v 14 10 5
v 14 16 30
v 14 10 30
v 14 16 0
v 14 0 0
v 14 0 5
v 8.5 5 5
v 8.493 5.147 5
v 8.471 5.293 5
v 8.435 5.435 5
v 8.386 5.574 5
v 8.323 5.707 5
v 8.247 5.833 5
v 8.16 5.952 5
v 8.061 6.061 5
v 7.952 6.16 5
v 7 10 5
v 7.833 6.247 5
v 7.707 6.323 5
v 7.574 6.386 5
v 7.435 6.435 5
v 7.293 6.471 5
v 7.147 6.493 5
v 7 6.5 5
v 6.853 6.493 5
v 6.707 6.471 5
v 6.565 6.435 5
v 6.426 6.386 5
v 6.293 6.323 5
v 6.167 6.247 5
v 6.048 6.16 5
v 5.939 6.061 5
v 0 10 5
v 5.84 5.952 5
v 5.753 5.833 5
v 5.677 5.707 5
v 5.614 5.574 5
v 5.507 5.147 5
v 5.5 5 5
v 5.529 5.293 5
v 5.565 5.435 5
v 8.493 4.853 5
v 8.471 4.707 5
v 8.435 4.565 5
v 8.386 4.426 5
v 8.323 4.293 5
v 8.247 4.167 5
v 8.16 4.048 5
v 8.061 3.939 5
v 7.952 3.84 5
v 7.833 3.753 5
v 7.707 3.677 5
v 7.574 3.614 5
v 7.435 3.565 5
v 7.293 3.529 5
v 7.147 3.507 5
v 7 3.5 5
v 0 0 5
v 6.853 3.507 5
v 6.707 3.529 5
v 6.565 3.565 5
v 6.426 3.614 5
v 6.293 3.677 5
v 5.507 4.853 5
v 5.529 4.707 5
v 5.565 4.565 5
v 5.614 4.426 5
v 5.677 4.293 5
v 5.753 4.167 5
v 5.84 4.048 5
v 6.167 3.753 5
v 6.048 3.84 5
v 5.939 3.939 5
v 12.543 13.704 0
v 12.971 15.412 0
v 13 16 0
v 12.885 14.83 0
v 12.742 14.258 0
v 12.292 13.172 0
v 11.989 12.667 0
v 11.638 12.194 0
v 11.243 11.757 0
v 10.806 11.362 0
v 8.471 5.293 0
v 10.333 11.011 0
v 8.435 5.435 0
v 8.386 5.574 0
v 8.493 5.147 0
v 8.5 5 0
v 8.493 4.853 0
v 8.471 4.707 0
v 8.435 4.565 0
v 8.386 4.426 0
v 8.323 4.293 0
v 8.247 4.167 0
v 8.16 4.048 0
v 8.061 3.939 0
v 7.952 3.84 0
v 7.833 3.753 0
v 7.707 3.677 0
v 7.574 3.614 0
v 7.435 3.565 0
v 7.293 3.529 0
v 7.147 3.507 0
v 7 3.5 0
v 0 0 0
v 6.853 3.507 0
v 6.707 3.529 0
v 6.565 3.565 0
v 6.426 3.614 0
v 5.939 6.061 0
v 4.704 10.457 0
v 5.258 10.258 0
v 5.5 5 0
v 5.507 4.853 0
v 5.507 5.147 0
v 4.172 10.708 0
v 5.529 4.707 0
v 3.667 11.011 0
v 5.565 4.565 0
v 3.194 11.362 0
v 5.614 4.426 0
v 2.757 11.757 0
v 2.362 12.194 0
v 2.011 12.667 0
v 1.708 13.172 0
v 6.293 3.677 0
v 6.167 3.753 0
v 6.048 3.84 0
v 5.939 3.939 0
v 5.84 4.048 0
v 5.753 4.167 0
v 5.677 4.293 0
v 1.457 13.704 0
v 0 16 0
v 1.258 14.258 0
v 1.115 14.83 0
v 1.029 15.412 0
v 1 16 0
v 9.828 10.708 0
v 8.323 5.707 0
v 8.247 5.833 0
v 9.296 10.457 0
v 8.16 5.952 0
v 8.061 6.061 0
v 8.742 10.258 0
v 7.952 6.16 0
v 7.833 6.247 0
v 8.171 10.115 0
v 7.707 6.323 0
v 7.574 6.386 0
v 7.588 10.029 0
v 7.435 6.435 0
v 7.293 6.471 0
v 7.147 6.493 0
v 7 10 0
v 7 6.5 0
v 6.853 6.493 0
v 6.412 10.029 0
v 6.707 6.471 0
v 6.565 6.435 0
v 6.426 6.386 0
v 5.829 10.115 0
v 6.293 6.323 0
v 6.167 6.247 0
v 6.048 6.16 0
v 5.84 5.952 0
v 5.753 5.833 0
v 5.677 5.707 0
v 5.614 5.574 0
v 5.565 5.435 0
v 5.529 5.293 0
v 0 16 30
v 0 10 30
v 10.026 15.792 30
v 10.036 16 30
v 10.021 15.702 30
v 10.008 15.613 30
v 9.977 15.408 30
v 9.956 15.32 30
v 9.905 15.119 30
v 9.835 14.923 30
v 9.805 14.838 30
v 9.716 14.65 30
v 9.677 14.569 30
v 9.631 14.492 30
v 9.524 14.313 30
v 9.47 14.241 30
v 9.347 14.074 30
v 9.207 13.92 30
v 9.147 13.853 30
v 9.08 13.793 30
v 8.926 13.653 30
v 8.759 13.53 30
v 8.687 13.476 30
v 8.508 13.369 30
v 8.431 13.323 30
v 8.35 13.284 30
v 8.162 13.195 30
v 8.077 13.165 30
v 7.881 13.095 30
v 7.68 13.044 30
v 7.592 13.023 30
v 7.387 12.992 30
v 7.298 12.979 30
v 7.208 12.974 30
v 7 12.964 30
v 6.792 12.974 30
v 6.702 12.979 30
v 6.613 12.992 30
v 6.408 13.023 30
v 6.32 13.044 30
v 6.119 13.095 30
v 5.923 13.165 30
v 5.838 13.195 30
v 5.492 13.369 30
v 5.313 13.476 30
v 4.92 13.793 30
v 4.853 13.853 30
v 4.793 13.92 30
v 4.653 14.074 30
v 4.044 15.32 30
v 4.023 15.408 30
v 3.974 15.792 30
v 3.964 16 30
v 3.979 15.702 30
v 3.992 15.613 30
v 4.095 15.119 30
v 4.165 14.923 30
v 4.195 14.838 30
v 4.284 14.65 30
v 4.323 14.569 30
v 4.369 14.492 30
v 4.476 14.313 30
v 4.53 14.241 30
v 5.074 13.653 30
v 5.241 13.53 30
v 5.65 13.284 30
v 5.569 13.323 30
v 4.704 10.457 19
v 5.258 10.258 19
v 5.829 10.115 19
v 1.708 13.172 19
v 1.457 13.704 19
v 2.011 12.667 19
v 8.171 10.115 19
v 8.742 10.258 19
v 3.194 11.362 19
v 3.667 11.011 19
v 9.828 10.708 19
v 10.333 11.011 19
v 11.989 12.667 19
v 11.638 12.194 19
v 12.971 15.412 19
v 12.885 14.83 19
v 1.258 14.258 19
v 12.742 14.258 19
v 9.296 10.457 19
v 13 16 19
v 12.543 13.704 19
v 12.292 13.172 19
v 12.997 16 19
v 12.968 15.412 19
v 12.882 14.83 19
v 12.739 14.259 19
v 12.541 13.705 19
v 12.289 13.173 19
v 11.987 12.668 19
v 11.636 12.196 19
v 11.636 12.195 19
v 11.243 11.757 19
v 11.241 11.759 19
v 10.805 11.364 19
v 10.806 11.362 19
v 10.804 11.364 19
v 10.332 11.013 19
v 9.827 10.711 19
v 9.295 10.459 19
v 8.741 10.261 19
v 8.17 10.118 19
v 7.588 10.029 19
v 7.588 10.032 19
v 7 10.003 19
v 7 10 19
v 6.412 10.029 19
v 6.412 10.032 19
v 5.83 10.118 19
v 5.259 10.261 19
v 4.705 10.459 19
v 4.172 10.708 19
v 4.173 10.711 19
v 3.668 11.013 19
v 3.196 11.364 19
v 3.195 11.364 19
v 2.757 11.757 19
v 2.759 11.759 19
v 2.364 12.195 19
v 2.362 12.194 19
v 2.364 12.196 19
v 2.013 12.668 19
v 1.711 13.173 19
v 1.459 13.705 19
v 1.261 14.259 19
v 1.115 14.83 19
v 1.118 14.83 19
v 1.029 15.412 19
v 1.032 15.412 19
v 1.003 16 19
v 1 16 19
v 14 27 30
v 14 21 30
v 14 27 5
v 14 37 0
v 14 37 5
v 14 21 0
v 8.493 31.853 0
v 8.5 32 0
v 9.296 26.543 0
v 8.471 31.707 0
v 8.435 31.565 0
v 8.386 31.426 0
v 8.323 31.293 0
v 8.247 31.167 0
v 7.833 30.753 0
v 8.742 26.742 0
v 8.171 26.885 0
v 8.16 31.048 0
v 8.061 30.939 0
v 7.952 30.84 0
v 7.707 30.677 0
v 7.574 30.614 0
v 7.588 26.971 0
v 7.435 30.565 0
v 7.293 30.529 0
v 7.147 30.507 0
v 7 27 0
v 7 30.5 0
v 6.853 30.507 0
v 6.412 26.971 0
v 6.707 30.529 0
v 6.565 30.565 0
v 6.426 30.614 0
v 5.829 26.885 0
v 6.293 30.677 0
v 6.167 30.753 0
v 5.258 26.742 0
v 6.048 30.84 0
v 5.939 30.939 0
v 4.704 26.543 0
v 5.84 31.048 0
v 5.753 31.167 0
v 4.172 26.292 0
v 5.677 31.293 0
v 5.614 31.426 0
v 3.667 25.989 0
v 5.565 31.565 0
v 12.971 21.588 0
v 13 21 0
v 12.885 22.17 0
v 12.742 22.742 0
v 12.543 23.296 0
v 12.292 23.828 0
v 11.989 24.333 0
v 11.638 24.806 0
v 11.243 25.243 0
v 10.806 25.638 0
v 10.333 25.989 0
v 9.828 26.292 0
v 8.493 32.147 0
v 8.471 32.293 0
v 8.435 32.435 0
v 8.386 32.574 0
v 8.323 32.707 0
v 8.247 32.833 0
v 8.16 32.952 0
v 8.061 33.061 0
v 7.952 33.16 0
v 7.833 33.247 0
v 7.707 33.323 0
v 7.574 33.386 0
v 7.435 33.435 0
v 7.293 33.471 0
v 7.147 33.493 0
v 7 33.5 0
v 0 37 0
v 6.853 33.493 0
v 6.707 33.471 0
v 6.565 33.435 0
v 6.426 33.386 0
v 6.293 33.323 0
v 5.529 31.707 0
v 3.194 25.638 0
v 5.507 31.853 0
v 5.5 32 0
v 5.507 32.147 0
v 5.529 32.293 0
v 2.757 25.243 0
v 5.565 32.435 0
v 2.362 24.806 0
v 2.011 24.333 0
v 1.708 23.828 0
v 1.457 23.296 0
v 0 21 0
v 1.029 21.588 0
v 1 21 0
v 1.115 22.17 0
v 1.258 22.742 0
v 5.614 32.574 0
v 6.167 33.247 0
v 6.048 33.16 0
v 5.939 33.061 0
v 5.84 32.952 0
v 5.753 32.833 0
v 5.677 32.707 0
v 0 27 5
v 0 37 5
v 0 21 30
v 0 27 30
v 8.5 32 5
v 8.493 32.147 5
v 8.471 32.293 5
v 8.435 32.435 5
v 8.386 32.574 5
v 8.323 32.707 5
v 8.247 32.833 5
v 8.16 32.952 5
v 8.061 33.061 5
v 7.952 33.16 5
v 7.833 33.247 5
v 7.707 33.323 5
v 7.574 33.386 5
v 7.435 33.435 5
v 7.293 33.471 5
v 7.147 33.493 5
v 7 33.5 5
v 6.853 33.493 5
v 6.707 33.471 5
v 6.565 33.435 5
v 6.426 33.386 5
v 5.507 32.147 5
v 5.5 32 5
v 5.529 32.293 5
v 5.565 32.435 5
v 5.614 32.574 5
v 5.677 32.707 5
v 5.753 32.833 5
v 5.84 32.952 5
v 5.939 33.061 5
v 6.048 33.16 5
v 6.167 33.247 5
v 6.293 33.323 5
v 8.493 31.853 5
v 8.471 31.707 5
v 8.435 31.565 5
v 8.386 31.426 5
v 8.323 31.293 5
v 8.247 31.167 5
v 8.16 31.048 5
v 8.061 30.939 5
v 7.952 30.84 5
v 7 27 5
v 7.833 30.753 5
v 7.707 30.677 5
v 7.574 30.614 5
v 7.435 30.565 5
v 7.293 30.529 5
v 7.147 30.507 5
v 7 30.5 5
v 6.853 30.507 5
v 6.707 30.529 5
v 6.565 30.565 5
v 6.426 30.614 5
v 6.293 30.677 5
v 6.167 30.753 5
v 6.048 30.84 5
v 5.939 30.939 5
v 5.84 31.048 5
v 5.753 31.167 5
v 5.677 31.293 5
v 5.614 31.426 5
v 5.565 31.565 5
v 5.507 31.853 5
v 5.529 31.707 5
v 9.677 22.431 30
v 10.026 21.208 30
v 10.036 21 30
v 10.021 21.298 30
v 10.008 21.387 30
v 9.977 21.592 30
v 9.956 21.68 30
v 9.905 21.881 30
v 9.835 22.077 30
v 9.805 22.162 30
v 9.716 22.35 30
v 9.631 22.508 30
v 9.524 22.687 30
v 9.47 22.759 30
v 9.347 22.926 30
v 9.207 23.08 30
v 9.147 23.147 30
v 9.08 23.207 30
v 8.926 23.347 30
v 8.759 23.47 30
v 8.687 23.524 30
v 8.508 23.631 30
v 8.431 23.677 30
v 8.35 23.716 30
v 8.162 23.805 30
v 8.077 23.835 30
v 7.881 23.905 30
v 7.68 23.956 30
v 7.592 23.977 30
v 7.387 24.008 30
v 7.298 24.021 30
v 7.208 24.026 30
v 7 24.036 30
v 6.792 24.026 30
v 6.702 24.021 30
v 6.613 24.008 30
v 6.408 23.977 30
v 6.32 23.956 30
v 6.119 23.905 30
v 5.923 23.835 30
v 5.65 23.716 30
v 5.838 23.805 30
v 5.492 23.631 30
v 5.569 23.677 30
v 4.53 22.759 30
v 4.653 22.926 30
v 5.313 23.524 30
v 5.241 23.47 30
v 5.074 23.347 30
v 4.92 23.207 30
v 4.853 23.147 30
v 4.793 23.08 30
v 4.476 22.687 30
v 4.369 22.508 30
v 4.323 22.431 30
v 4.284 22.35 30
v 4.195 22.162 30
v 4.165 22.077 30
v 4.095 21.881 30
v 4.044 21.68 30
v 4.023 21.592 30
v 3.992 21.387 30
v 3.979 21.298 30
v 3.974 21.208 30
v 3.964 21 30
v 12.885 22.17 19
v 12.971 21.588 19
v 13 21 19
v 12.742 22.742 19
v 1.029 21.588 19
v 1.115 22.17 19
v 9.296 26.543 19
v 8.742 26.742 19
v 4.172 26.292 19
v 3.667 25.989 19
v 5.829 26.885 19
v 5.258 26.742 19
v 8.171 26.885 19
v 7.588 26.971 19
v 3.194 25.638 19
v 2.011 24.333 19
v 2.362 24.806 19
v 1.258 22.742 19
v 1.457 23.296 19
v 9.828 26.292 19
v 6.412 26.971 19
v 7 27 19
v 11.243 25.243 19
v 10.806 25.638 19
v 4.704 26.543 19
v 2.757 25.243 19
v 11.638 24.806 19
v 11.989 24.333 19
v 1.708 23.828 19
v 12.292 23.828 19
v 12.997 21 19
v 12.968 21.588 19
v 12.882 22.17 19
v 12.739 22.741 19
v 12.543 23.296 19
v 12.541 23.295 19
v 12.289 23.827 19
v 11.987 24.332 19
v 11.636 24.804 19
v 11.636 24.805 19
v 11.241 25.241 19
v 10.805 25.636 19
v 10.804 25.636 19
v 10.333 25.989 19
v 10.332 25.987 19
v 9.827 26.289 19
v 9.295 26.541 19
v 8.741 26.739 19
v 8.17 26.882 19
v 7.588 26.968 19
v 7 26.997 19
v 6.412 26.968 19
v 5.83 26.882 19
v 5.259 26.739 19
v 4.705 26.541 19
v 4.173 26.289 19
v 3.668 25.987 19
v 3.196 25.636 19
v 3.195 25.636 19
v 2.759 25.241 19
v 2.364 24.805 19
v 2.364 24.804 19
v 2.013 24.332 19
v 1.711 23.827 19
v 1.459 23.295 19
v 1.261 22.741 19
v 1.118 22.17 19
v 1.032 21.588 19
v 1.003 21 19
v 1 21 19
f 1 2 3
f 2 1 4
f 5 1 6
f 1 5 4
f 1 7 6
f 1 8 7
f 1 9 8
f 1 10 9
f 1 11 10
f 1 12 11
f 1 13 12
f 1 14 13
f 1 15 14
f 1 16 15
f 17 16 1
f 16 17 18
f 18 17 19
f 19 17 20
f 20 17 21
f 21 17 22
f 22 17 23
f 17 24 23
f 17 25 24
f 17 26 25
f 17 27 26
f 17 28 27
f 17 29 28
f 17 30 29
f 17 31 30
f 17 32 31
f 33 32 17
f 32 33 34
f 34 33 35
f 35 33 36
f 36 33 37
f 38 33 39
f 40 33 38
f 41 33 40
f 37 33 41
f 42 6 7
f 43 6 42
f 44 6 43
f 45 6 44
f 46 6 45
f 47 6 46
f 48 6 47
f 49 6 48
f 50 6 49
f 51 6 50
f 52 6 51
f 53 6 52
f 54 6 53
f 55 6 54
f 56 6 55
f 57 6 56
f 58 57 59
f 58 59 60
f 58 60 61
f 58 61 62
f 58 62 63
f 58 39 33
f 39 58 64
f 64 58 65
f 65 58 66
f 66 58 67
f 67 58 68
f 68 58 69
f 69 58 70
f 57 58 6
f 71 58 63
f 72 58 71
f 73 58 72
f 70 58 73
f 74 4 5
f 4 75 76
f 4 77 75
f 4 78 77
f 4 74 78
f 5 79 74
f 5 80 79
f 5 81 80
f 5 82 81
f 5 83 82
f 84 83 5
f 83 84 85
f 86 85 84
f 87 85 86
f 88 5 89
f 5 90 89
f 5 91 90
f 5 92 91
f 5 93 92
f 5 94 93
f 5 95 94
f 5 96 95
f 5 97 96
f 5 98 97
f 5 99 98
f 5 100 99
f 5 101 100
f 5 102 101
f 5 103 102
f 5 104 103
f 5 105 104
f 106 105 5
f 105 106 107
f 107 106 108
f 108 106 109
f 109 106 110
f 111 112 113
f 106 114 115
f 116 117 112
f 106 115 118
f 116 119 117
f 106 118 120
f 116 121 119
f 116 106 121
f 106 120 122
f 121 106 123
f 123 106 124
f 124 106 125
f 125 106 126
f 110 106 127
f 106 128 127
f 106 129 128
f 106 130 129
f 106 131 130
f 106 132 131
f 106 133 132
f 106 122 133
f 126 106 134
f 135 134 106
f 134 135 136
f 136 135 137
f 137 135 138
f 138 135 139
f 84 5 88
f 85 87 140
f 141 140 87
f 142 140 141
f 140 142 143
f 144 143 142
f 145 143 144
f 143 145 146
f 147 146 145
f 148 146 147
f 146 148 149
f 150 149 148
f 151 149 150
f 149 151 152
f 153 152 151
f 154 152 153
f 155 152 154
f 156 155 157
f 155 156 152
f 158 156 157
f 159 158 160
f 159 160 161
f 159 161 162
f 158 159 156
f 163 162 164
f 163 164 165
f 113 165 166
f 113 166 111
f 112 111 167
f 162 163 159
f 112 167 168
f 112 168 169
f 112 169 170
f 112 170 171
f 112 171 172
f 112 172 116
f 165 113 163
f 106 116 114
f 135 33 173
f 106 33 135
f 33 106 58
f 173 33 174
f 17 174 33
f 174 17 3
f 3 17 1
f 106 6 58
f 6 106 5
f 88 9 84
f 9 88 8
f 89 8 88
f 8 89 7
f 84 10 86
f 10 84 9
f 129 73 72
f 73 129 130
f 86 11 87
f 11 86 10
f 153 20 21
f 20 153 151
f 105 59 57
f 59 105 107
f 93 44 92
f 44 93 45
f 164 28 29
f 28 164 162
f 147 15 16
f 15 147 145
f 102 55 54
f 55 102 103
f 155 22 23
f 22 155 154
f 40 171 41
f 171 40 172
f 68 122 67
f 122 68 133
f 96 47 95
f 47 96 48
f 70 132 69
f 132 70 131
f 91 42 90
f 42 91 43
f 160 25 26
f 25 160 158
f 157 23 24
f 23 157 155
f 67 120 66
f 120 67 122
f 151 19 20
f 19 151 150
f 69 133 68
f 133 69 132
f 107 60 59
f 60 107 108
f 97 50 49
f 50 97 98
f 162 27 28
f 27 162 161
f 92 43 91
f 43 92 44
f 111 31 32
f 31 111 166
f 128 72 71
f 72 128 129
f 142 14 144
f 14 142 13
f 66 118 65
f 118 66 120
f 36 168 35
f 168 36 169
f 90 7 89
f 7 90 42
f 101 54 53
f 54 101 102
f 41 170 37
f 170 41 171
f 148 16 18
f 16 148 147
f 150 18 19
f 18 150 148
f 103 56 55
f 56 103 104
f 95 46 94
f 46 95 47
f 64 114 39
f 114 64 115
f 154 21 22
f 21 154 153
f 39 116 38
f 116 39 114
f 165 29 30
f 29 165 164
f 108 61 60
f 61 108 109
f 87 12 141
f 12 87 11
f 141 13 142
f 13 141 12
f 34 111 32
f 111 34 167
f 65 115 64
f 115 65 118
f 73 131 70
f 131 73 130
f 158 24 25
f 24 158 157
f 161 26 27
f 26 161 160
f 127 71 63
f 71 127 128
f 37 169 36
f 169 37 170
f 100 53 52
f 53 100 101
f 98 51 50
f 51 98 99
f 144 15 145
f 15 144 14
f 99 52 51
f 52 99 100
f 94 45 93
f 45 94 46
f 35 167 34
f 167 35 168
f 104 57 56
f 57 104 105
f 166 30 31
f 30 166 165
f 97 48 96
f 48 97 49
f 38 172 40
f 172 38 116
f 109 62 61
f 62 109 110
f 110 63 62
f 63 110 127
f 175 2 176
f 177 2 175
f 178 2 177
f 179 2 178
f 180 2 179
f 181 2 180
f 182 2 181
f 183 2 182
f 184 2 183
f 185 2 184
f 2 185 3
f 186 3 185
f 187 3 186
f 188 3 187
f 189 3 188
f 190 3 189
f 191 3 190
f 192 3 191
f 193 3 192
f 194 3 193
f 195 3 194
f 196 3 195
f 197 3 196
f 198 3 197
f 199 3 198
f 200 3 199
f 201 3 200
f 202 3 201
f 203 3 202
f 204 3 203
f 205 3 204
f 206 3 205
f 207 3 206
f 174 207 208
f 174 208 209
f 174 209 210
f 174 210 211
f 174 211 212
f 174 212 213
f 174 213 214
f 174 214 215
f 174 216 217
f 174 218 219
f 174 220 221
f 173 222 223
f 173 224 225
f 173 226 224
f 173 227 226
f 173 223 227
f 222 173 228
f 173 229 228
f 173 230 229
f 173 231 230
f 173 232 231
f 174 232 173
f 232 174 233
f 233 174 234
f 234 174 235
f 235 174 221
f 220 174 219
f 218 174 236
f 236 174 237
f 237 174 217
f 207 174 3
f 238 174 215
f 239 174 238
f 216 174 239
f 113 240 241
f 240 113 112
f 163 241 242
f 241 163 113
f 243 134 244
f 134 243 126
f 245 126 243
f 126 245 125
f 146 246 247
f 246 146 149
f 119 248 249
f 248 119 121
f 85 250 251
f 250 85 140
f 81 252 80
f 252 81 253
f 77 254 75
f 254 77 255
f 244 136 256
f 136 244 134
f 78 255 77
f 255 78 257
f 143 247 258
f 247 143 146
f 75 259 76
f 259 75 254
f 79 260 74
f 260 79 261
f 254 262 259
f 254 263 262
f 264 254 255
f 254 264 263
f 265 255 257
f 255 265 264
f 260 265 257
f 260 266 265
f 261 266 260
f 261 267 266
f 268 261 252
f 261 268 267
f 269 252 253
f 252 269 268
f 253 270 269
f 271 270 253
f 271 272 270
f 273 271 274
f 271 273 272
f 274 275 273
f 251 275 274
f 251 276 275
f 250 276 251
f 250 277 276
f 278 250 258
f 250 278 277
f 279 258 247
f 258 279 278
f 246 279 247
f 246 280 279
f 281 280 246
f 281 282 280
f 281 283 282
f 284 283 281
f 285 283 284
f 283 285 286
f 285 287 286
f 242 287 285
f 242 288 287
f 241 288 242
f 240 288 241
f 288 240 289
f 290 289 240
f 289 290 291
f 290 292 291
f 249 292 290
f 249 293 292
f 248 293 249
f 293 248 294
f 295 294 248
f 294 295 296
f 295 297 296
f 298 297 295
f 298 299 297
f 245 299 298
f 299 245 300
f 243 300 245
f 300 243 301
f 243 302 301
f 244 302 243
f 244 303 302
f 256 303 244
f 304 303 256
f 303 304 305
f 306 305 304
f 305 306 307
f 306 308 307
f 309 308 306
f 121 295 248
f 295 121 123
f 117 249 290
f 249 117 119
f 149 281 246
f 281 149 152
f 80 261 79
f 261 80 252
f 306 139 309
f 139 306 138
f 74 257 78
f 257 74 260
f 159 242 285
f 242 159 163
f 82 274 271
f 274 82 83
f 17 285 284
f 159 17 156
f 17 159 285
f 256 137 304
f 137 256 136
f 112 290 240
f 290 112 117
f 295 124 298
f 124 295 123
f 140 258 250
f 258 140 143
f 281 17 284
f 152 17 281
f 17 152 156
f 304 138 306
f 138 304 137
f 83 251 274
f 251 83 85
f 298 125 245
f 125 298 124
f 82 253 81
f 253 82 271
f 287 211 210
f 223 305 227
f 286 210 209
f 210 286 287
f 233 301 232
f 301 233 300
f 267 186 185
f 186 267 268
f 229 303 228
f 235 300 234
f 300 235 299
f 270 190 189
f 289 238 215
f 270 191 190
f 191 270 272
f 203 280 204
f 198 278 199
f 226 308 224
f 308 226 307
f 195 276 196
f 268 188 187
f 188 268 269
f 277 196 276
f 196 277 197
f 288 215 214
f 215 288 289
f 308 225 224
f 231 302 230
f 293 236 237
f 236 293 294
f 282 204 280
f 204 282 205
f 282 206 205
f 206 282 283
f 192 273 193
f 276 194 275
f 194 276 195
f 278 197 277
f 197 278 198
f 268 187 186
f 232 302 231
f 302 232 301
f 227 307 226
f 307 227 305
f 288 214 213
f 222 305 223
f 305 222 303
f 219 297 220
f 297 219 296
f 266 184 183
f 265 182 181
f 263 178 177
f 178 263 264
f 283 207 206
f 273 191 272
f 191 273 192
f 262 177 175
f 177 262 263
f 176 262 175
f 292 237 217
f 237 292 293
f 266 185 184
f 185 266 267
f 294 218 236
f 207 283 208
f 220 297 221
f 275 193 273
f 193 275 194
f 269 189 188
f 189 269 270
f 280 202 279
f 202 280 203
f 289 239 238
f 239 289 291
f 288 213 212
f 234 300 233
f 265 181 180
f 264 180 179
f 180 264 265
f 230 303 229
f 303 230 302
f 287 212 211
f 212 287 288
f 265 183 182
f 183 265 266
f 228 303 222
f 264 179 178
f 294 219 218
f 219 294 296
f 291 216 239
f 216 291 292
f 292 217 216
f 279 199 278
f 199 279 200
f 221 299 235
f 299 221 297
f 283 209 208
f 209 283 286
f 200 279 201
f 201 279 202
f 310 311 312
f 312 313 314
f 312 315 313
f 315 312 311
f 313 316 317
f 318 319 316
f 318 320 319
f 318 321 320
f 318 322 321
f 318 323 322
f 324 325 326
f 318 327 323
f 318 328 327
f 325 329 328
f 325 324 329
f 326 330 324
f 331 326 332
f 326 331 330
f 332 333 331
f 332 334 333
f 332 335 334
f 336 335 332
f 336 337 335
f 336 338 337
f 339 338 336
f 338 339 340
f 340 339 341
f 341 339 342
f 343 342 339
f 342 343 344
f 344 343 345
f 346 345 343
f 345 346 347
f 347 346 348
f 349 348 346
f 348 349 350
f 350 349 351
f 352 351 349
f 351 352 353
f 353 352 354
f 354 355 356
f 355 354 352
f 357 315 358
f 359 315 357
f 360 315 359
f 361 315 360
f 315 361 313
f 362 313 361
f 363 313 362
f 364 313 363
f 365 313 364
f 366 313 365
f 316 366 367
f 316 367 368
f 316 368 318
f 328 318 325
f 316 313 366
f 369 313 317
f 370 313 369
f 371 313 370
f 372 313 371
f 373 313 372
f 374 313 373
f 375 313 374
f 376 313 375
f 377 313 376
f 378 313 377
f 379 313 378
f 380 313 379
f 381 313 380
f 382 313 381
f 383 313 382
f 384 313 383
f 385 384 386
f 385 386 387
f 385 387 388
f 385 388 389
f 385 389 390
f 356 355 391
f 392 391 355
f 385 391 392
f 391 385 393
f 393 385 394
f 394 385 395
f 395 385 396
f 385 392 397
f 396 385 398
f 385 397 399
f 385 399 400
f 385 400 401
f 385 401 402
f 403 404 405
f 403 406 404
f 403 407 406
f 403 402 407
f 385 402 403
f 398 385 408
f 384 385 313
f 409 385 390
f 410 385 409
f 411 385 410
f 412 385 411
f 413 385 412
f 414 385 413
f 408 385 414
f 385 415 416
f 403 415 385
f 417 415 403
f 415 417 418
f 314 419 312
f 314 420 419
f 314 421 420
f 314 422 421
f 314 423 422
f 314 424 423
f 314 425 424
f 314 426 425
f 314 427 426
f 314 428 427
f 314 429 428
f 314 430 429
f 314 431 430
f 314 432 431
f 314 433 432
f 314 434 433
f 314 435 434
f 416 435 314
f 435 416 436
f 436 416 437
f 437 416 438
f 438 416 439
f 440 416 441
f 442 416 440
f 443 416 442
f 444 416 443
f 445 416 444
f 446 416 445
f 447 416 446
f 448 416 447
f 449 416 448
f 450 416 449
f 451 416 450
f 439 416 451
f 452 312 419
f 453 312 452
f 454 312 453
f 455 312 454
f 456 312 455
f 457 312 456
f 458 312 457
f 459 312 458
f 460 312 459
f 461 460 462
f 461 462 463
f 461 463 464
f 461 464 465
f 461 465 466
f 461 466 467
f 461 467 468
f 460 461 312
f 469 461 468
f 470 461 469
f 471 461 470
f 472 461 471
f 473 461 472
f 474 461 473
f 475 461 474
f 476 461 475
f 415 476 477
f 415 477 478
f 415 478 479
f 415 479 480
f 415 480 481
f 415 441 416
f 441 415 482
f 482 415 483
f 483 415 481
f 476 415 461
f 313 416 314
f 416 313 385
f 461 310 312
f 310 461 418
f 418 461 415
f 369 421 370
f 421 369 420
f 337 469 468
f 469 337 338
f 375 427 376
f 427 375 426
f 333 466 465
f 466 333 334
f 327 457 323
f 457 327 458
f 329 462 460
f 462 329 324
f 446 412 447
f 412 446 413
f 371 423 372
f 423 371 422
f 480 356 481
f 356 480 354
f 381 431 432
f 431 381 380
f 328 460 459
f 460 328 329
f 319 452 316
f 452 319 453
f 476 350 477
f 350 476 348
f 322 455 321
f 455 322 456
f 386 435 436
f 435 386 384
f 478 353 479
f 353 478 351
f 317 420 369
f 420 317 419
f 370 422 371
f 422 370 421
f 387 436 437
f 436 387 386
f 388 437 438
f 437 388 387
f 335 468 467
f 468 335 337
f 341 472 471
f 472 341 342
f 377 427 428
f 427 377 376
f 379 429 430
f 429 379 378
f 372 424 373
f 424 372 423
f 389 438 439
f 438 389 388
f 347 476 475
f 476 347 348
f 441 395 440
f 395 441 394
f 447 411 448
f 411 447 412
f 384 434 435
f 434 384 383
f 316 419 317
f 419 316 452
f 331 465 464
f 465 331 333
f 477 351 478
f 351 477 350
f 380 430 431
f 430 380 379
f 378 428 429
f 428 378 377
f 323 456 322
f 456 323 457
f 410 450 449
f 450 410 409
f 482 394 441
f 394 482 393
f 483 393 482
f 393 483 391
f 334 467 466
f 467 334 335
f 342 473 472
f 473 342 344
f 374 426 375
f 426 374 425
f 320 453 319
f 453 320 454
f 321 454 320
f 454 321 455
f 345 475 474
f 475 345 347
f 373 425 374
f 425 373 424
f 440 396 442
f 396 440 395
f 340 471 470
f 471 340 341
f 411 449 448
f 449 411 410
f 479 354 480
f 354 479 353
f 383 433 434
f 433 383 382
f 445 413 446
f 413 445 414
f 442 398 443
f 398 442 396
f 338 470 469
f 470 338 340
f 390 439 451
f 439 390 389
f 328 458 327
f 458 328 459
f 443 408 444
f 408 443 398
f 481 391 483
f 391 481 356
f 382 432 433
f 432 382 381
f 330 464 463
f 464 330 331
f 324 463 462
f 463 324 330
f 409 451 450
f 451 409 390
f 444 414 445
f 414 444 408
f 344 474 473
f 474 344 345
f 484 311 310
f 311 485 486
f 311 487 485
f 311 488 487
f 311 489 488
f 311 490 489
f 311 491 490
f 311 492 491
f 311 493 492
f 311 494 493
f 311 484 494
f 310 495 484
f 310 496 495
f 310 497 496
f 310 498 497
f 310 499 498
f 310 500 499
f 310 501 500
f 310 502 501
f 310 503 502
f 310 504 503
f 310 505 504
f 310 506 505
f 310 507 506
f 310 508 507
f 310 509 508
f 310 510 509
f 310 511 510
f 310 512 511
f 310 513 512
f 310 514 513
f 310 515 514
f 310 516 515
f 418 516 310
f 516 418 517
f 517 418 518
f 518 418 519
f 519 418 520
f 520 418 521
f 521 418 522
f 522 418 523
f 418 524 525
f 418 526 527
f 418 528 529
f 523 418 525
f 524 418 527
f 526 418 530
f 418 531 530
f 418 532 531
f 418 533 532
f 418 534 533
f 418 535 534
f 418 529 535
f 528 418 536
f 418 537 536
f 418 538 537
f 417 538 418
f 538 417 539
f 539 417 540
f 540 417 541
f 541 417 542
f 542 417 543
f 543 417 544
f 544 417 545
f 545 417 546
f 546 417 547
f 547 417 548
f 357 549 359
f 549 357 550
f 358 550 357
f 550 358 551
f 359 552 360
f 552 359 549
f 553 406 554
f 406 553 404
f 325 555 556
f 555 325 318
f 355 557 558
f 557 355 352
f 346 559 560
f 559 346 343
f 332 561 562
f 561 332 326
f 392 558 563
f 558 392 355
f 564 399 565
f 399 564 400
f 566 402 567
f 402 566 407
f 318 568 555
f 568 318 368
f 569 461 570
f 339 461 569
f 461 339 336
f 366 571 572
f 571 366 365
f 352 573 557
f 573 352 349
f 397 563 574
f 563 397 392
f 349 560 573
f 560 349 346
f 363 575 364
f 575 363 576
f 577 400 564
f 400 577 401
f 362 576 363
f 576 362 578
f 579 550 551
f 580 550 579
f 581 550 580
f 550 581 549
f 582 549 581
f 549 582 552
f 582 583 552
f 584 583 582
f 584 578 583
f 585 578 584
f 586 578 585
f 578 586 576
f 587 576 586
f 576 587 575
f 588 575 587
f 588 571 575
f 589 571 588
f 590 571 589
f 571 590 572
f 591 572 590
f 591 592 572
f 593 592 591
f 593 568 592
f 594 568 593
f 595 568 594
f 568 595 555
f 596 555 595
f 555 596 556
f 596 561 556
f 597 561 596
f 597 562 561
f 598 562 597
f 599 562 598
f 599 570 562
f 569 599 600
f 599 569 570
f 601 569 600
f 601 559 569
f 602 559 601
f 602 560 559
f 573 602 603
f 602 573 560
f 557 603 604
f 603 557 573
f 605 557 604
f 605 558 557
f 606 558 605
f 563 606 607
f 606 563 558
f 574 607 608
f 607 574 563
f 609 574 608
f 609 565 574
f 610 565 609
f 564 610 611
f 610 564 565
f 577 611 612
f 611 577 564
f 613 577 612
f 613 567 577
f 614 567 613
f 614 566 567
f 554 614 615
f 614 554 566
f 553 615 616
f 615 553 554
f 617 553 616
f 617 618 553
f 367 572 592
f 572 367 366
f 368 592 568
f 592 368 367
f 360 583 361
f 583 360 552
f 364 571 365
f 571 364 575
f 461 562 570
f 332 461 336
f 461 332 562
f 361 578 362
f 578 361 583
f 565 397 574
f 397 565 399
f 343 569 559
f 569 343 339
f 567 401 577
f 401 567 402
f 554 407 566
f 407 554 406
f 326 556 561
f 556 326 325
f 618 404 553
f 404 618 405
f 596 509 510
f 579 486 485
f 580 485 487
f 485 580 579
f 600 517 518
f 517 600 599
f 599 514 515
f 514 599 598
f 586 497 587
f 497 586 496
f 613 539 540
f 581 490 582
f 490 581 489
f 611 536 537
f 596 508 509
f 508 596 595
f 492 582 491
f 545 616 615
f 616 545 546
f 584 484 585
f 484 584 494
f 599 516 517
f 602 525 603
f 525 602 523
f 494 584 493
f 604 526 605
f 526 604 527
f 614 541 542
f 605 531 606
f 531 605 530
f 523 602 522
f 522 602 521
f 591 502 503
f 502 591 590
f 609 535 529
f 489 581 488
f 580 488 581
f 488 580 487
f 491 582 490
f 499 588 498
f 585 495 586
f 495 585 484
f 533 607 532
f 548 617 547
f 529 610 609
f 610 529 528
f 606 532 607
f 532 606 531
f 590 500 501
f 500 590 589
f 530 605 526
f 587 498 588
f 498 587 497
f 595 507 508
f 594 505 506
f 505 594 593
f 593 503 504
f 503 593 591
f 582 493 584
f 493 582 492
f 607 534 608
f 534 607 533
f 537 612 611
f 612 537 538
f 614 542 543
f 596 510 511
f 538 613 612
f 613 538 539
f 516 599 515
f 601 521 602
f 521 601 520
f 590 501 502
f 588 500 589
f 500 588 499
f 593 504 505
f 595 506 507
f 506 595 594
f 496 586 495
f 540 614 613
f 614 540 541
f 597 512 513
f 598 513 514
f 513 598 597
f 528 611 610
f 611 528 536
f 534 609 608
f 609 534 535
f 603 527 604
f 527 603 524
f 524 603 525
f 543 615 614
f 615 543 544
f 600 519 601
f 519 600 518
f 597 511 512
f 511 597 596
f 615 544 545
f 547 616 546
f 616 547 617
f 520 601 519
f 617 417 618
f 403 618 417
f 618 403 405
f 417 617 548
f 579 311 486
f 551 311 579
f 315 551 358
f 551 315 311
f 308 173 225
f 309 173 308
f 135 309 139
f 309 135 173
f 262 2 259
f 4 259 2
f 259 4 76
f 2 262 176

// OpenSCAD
module bracket() {
    difference() {
        cube([14, 10, 5]);
        translate([7, 5, -1])
        cylinder(7, d=3, $fn=64);
    }
    translate([0, 22, 0])
    difference() {
        cube([14, 10, 5]);
        translate([7, 5, -1])
        cylinder(7, d=3, $fn=64);
    }
    translate([0, 10, 0])
    difference() {
        cube([14, 12, 30]);
        translate([7, 6, -1])
        cylinder(20, d=12, $fn=64);
        translate([7, 6, 18.99])
        cylinder(13, d1=12, d2=5, $fn=64);
    }
}

module cut() {
    translate([-1, -1, -1])
    cube([16, 17, 40]);
}

translate([0, 5, 0])
difference() {    
    bracket();
    cut();
}

intersection() {    
    bracket();
    cut();
}
